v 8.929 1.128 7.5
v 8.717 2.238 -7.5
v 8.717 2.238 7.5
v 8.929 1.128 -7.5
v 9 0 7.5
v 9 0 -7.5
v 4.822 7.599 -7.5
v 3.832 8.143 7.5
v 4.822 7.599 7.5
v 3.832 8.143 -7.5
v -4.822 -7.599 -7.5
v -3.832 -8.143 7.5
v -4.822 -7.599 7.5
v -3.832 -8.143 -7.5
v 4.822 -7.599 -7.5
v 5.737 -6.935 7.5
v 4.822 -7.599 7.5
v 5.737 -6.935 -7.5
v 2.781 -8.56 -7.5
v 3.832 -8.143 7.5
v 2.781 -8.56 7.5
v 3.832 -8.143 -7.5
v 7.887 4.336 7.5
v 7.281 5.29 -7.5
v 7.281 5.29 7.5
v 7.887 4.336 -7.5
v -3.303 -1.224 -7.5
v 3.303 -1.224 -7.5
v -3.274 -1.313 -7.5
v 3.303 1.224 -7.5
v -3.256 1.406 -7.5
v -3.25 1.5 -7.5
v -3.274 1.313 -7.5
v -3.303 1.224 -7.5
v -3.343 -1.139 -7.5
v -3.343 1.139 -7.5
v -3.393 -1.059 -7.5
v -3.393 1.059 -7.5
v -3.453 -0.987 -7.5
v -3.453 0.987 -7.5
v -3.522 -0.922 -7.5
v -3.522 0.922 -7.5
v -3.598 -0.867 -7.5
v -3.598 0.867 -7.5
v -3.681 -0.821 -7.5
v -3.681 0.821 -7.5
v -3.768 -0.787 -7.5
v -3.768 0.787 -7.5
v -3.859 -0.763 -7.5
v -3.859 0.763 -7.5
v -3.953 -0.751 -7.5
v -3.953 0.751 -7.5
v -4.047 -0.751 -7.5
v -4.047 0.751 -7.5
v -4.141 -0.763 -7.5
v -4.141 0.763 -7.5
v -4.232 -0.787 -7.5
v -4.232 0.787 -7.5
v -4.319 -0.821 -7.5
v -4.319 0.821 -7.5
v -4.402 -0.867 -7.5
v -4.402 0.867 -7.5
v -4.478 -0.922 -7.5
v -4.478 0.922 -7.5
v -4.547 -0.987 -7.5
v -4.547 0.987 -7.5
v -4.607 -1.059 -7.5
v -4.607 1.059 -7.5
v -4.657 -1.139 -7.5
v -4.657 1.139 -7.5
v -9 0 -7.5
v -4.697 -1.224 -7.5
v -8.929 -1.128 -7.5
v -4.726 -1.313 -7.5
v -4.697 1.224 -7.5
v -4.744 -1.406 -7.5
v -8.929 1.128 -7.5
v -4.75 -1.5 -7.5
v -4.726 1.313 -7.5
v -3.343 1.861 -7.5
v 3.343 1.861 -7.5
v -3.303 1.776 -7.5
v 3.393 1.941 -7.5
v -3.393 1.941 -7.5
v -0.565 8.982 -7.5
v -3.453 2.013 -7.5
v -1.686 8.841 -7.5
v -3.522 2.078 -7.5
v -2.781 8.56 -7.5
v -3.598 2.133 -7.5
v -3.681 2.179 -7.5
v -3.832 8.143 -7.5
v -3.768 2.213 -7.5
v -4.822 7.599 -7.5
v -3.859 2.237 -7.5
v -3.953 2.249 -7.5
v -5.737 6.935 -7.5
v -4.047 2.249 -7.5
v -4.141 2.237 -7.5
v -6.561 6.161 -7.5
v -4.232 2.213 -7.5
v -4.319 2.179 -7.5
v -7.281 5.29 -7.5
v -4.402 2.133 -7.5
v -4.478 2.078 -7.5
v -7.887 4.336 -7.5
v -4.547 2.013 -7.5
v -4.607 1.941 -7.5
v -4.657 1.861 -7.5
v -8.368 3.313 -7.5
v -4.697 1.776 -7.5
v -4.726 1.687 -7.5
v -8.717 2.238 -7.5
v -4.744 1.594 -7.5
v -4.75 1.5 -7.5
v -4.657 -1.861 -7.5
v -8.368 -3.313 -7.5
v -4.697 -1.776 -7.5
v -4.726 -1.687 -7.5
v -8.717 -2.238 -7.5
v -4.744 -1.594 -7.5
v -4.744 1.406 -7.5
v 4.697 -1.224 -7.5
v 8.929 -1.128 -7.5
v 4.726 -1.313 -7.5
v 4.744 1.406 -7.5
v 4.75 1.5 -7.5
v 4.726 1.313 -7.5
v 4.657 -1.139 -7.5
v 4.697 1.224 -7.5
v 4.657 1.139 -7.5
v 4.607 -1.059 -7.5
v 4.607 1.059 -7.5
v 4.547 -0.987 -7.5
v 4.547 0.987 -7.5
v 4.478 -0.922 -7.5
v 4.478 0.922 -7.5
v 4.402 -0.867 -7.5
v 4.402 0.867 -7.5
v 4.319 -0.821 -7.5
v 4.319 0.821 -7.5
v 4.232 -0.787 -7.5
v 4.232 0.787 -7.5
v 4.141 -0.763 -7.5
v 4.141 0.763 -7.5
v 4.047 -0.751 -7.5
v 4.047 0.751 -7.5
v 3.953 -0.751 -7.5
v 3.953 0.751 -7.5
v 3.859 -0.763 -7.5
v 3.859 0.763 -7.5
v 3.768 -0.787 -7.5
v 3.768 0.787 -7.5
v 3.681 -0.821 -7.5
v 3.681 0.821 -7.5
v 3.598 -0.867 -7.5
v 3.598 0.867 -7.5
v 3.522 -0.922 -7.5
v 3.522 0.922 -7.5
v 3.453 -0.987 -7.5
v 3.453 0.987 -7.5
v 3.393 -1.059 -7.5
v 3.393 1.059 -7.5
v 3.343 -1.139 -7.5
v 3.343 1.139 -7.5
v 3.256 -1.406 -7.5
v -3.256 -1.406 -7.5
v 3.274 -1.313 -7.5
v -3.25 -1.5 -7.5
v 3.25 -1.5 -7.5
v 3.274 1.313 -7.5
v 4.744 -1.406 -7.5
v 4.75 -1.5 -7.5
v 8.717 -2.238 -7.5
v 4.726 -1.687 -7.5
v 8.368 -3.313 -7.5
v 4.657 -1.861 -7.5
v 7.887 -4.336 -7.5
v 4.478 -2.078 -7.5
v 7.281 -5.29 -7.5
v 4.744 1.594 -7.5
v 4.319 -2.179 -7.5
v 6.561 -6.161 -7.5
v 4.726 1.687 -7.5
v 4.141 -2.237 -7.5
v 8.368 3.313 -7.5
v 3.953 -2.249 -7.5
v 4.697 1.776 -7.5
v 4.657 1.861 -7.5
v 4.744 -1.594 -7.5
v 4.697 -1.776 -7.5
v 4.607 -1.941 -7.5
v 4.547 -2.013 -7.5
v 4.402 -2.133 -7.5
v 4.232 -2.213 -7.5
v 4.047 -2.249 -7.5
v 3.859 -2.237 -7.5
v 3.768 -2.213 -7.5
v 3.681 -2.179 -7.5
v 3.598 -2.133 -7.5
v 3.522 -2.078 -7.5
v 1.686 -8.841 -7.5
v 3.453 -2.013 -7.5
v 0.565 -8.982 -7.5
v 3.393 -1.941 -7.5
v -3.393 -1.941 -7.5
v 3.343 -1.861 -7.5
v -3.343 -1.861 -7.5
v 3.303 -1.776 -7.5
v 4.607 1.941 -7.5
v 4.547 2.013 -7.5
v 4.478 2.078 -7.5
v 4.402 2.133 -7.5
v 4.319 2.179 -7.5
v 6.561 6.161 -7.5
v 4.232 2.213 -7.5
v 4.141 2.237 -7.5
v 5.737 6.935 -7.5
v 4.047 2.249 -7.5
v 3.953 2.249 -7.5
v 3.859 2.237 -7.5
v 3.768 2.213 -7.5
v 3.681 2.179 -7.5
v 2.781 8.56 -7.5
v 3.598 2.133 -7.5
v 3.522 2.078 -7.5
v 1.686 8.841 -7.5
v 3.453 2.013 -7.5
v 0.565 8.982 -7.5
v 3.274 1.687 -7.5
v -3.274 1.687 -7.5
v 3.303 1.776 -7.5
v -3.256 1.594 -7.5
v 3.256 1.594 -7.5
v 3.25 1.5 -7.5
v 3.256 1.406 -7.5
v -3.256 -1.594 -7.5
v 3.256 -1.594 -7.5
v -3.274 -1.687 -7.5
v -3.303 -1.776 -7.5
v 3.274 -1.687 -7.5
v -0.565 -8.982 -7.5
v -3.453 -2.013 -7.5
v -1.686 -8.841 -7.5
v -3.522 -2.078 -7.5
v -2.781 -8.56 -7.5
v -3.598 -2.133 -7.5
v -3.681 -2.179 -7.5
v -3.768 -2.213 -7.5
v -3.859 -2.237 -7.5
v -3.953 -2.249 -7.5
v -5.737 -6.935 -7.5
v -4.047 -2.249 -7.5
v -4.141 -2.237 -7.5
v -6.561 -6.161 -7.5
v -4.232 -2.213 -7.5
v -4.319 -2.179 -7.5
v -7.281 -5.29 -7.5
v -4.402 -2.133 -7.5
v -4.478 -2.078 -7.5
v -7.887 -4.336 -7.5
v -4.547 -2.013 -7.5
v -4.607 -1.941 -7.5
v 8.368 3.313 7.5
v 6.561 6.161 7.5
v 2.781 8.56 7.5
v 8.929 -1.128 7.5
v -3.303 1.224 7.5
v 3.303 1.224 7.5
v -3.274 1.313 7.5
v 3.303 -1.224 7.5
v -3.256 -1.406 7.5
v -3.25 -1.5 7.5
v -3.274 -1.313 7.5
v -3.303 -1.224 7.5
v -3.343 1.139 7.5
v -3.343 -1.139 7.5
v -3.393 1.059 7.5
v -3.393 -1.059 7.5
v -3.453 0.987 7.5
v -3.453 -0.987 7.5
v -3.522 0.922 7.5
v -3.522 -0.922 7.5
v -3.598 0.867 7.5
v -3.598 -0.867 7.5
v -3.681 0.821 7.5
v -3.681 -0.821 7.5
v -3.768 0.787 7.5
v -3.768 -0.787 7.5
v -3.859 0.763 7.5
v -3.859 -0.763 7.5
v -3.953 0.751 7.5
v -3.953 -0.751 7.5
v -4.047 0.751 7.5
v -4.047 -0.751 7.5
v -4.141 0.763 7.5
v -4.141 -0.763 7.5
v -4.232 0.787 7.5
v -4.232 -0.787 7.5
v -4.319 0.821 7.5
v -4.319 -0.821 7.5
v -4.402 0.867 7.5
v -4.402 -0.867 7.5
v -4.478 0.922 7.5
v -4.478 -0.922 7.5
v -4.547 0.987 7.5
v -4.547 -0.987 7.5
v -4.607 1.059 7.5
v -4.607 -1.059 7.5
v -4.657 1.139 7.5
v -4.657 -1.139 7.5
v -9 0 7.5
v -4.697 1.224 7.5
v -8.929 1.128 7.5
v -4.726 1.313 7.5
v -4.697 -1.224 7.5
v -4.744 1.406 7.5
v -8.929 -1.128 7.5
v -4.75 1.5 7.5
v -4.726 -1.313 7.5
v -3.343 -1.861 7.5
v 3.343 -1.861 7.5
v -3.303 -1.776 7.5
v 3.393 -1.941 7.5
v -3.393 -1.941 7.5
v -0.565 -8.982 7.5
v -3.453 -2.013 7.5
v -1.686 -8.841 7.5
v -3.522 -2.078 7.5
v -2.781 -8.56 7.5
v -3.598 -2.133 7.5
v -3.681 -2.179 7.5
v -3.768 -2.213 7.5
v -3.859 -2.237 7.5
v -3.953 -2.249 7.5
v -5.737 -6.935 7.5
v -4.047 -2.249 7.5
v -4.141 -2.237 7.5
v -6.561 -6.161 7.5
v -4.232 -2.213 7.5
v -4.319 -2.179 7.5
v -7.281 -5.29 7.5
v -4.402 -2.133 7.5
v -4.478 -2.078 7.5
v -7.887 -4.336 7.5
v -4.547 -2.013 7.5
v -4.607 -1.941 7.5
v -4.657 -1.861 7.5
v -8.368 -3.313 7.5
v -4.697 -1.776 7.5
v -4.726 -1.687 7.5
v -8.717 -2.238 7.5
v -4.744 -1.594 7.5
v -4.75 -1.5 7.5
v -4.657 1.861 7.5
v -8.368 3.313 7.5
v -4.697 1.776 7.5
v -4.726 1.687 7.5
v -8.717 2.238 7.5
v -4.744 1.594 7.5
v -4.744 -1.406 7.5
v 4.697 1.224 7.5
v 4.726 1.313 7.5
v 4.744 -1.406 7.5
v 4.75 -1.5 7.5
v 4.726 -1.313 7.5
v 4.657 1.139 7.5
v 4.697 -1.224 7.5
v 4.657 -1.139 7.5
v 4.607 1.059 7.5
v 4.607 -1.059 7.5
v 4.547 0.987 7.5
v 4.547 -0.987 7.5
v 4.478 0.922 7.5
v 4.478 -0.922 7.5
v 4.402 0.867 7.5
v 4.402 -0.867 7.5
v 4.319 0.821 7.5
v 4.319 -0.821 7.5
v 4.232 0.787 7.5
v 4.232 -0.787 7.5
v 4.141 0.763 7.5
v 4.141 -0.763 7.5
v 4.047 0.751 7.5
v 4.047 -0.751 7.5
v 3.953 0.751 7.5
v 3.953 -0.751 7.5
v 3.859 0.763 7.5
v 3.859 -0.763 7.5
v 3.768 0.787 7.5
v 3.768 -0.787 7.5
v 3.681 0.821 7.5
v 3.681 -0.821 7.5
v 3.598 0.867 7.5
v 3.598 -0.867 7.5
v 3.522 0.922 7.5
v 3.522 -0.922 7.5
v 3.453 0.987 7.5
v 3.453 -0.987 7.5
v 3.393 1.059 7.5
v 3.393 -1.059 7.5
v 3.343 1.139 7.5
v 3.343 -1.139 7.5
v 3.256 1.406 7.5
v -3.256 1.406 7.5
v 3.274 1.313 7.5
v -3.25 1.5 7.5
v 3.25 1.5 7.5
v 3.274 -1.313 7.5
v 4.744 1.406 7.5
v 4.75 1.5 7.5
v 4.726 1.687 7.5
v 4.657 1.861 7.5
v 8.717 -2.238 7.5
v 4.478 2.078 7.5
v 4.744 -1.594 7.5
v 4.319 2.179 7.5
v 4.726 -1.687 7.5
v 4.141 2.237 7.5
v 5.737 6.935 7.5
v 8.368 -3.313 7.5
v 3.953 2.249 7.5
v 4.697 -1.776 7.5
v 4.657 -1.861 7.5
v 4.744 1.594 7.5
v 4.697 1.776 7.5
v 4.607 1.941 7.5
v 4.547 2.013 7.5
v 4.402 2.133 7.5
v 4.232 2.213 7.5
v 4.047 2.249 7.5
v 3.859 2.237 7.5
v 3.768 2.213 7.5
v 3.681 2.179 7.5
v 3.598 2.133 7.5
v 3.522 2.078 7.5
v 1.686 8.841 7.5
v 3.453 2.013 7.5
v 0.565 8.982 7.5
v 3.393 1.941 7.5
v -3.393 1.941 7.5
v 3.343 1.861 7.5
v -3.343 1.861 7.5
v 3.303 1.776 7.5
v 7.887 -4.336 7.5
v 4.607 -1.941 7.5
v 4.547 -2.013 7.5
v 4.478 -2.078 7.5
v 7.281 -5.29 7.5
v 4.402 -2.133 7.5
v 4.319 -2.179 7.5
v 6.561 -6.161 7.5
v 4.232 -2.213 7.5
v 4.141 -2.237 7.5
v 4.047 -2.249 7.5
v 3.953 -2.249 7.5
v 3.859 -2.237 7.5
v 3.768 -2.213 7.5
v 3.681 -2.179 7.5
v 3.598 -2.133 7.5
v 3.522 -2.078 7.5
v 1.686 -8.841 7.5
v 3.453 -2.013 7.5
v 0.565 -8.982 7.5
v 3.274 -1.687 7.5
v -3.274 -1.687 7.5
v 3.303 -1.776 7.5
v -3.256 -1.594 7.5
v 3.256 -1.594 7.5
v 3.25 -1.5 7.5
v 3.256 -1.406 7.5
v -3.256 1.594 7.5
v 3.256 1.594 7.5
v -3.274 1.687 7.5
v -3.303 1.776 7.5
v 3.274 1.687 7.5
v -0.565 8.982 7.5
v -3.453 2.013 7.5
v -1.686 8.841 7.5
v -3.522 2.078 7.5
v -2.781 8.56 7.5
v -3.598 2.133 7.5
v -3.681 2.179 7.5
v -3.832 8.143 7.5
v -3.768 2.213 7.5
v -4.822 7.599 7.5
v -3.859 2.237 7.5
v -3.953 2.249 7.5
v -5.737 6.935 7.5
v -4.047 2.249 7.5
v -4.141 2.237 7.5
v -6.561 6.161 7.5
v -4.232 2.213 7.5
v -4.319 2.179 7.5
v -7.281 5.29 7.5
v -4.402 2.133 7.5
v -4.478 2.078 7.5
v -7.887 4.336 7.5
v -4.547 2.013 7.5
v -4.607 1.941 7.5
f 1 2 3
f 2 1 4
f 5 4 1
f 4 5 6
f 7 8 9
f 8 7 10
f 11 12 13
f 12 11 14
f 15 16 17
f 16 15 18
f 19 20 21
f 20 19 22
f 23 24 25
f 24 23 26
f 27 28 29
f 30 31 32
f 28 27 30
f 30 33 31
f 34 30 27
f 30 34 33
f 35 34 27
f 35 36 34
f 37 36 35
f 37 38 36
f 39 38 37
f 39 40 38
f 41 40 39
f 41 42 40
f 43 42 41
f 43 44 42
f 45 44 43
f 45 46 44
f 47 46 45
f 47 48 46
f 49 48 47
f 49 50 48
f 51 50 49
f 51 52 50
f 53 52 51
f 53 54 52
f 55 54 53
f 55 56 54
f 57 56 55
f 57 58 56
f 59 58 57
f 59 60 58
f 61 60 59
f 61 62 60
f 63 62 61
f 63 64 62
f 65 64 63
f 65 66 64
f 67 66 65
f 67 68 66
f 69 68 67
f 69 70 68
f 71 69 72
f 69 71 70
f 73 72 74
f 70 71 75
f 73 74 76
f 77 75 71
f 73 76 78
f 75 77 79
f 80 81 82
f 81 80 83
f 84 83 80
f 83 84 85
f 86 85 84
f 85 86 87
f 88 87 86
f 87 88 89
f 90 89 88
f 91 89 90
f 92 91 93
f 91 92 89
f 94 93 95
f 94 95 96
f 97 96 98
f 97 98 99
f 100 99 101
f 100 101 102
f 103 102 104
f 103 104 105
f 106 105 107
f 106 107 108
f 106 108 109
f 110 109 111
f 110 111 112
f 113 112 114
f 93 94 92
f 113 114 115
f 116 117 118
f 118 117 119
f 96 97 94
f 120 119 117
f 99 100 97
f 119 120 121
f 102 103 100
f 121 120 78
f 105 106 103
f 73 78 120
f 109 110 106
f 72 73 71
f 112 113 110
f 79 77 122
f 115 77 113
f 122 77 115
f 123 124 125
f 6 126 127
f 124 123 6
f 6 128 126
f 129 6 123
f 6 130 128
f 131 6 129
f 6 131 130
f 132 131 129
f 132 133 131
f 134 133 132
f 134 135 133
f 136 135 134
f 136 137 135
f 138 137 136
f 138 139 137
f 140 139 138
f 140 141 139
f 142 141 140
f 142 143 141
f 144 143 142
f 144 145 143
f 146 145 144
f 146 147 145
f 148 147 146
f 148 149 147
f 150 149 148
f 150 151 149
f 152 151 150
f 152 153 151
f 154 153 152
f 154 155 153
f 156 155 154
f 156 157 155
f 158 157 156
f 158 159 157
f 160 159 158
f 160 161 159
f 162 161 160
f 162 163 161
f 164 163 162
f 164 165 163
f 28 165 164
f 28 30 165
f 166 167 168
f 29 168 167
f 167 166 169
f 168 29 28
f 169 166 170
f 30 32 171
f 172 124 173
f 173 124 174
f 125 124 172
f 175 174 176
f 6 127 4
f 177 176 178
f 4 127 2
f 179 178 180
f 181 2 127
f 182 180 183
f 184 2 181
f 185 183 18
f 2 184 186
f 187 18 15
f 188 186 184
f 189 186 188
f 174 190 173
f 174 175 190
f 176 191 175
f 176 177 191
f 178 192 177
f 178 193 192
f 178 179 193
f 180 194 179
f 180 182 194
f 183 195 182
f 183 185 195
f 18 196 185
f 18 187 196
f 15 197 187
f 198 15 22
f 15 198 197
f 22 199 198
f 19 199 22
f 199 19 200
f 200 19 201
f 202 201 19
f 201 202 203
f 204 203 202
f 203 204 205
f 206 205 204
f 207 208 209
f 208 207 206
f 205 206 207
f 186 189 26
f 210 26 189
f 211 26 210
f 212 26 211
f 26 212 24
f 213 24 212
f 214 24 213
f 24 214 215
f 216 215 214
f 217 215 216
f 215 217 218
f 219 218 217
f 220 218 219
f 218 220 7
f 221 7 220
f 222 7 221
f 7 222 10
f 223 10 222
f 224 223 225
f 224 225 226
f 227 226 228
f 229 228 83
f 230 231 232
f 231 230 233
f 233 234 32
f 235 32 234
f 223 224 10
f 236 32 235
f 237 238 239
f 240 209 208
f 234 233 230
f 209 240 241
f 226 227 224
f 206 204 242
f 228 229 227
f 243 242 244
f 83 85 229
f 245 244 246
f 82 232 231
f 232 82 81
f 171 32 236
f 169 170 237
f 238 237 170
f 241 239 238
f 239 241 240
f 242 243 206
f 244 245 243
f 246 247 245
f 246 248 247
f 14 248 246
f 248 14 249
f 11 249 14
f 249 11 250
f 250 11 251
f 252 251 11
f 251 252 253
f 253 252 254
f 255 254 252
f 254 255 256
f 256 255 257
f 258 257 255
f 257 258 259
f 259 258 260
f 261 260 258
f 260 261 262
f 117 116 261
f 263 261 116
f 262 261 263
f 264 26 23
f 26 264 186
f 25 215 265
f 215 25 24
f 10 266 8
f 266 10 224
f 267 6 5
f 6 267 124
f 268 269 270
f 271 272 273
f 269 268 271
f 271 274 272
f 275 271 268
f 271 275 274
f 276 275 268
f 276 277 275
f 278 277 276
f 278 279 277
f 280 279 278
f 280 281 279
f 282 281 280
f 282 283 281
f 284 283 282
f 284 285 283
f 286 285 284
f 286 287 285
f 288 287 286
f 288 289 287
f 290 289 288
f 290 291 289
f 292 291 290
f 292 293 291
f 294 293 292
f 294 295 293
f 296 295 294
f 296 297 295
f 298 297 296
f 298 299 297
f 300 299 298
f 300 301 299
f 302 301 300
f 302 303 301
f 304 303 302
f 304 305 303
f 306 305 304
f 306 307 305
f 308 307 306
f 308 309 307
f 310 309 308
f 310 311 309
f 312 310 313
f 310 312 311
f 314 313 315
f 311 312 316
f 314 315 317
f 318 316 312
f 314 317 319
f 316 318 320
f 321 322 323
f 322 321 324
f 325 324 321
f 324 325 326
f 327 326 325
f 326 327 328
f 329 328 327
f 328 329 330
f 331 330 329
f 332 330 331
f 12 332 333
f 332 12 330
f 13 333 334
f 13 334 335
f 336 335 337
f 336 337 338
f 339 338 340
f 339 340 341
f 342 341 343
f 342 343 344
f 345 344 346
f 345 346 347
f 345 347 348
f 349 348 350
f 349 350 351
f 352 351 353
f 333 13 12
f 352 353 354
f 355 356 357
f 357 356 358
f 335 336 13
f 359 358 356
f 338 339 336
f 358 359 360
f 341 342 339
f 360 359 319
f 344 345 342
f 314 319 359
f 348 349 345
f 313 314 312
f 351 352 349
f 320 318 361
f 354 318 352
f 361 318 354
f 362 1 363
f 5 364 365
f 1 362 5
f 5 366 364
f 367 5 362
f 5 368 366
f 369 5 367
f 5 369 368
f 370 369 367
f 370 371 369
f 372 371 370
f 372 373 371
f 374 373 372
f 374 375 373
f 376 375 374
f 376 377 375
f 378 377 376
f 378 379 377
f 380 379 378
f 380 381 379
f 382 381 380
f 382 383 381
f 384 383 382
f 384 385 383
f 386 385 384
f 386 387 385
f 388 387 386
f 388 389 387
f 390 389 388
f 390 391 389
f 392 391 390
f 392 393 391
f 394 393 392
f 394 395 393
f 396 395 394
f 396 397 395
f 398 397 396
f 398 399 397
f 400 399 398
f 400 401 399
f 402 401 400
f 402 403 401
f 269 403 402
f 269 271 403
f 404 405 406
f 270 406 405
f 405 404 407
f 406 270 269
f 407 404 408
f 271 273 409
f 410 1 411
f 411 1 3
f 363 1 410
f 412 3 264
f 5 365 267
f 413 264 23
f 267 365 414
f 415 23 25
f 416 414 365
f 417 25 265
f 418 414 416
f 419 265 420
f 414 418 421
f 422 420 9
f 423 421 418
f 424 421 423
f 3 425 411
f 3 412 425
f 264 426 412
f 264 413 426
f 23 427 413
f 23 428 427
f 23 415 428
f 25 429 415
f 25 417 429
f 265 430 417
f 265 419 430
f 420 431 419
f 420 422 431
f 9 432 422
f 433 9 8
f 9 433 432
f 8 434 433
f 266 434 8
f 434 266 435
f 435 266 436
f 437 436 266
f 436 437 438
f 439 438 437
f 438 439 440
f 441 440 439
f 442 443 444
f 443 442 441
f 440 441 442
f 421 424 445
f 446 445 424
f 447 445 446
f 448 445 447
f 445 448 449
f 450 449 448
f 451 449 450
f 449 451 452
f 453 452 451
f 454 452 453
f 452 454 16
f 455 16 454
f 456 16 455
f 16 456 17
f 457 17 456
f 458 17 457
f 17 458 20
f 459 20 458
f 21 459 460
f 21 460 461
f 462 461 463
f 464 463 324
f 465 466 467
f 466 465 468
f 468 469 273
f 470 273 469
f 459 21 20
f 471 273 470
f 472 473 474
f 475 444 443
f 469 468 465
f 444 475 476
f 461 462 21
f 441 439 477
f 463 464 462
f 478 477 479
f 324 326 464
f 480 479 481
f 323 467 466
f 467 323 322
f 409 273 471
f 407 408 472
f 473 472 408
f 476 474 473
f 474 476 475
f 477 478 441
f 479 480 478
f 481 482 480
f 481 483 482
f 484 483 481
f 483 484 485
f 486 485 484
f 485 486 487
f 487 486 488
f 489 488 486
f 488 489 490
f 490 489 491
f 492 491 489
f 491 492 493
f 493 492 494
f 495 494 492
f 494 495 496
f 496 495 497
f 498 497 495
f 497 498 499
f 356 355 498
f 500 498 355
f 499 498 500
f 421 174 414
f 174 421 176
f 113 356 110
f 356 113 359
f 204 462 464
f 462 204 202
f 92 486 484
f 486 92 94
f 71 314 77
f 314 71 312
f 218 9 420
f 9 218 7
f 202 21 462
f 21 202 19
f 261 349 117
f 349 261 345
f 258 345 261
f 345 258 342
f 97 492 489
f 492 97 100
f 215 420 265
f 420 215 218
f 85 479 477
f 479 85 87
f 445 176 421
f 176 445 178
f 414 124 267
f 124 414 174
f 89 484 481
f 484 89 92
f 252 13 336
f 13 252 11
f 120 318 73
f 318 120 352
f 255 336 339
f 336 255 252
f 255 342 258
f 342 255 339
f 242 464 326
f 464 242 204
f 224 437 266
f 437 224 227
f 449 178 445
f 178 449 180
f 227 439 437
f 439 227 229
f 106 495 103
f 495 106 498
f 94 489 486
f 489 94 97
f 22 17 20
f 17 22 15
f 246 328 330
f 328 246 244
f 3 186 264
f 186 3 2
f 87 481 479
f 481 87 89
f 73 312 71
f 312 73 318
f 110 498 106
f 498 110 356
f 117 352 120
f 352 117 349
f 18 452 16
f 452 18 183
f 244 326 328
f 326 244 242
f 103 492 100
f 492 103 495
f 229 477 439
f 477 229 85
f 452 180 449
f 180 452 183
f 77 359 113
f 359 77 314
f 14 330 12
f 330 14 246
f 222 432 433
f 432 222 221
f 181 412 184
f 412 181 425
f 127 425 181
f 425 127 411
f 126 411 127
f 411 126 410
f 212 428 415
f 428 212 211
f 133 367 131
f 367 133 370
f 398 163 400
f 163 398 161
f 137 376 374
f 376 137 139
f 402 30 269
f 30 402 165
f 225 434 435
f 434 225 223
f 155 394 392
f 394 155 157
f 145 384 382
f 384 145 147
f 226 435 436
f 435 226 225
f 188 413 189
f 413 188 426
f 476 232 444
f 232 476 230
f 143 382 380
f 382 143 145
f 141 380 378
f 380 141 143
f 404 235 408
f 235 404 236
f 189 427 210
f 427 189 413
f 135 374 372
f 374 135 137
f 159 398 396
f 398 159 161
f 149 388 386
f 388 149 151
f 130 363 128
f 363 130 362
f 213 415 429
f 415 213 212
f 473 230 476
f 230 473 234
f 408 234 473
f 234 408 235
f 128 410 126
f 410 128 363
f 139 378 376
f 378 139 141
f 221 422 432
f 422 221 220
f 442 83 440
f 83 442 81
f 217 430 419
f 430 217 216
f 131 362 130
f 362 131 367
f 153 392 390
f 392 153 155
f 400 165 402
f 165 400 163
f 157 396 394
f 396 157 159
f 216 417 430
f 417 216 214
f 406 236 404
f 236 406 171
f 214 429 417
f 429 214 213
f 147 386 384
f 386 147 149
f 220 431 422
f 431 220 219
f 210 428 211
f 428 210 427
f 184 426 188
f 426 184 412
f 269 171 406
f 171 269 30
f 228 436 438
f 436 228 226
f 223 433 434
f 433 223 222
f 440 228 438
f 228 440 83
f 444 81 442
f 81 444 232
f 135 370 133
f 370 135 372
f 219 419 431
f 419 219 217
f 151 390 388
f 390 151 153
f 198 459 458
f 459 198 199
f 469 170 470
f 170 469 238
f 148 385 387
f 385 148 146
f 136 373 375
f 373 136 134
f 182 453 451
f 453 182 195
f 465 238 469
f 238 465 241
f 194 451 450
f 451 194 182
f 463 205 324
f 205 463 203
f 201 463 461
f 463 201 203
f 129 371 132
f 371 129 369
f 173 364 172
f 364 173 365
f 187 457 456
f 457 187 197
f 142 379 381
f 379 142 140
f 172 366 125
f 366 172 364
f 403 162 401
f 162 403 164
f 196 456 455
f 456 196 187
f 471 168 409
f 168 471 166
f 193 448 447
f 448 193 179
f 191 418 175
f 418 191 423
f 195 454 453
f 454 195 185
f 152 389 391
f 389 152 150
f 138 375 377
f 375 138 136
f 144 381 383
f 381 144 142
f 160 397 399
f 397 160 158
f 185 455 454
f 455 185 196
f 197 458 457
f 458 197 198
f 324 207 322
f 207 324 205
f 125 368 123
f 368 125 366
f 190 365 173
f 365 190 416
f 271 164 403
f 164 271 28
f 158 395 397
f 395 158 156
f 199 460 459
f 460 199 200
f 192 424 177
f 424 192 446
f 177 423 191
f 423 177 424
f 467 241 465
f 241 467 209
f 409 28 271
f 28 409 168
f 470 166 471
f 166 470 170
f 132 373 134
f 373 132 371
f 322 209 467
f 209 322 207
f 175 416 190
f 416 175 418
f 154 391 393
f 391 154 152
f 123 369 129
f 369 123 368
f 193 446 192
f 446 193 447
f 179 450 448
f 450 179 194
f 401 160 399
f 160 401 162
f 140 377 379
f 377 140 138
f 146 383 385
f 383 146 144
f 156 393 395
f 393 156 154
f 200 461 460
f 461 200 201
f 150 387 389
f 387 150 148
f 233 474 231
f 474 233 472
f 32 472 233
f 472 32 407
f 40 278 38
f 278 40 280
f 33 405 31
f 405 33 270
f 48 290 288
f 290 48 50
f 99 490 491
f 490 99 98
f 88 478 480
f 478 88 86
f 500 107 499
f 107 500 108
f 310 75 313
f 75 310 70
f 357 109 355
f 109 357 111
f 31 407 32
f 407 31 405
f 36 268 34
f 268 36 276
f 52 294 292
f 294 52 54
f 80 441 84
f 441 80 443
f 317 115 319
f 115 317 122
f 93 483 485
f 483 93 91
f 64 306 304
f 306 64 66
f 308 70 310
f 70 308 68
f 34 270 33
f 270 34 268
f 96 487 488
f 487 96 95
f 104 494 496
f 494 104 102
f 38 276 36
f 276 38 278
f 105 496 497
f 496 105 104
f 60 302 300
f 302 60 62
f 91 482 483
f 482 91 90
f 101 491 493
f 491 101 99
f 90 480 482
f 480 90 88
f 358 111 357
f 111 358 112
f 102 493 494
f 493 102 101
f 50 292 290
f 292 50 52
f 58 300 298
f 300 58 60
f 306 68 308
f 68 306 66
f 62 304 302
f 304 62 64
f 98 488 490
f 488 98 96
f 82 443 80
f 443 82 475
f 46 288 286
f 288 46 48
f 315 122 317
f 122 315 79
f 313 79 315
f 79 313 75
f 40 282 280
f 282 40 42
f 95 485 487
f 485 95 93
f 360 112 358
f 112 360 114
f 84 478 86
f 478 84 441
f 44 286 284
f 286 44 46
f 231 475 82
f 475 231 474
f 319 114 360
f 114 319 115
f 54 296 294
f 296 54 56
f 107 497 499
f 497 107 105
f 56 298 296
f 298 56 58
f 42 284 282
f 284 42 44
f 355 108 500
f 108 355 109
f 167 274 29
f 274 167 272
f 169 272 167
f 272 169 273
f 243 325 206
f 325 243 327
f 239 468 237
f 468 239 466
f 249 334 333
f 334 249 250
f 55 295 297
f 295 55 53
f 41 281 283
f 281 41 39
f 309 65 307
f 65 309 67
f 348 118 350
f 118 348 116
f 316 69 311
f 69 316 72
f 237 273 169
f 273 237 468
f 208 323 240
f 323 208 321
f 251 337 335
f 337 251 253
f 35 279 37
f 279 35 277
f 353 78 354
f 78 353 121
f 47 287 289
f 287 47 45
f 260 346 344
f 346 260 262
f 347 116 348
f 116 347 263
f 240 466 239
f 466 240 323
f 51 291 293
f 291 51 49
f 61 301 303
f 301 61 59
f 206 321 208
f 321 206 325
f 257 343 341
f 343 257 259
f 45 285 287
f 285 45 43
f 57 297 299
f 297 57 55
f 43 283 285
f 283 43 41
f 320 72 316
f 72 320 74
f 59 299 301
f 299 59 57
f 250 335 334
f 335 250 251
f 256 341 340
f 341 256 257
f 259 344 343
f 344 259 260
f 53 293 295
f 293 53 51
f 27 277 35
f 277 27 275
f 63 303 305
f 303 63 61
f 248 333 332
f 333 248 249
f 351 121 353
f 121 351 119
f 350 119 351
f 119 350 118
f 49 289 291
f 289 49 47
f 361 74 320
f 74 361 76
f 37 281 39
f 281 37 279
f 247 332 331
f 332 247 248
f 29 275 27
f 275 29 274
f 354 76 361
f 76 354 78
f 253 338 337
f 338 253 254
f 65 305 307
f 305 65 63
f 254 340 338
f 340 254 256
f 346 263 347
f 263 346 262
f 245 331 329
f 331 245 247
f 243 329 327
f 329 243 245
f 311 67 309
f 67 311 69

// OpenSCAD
$fn = 50;

difference() {
cylinder(d=18, h=15, center = true);


translate([4, 1.5, 0])
cylinder(d=1.5, h=20, center = true);

translate([4, -1.5, 0])
cylinder(d=1.5, h=20, center = true);

translate([-4, 1.5, 0])
cylinder(d=1.5, h=20, center = true);

translate([-4, -1.5, 0])
cylinder(d=1.5, h=20, center = true);
}
